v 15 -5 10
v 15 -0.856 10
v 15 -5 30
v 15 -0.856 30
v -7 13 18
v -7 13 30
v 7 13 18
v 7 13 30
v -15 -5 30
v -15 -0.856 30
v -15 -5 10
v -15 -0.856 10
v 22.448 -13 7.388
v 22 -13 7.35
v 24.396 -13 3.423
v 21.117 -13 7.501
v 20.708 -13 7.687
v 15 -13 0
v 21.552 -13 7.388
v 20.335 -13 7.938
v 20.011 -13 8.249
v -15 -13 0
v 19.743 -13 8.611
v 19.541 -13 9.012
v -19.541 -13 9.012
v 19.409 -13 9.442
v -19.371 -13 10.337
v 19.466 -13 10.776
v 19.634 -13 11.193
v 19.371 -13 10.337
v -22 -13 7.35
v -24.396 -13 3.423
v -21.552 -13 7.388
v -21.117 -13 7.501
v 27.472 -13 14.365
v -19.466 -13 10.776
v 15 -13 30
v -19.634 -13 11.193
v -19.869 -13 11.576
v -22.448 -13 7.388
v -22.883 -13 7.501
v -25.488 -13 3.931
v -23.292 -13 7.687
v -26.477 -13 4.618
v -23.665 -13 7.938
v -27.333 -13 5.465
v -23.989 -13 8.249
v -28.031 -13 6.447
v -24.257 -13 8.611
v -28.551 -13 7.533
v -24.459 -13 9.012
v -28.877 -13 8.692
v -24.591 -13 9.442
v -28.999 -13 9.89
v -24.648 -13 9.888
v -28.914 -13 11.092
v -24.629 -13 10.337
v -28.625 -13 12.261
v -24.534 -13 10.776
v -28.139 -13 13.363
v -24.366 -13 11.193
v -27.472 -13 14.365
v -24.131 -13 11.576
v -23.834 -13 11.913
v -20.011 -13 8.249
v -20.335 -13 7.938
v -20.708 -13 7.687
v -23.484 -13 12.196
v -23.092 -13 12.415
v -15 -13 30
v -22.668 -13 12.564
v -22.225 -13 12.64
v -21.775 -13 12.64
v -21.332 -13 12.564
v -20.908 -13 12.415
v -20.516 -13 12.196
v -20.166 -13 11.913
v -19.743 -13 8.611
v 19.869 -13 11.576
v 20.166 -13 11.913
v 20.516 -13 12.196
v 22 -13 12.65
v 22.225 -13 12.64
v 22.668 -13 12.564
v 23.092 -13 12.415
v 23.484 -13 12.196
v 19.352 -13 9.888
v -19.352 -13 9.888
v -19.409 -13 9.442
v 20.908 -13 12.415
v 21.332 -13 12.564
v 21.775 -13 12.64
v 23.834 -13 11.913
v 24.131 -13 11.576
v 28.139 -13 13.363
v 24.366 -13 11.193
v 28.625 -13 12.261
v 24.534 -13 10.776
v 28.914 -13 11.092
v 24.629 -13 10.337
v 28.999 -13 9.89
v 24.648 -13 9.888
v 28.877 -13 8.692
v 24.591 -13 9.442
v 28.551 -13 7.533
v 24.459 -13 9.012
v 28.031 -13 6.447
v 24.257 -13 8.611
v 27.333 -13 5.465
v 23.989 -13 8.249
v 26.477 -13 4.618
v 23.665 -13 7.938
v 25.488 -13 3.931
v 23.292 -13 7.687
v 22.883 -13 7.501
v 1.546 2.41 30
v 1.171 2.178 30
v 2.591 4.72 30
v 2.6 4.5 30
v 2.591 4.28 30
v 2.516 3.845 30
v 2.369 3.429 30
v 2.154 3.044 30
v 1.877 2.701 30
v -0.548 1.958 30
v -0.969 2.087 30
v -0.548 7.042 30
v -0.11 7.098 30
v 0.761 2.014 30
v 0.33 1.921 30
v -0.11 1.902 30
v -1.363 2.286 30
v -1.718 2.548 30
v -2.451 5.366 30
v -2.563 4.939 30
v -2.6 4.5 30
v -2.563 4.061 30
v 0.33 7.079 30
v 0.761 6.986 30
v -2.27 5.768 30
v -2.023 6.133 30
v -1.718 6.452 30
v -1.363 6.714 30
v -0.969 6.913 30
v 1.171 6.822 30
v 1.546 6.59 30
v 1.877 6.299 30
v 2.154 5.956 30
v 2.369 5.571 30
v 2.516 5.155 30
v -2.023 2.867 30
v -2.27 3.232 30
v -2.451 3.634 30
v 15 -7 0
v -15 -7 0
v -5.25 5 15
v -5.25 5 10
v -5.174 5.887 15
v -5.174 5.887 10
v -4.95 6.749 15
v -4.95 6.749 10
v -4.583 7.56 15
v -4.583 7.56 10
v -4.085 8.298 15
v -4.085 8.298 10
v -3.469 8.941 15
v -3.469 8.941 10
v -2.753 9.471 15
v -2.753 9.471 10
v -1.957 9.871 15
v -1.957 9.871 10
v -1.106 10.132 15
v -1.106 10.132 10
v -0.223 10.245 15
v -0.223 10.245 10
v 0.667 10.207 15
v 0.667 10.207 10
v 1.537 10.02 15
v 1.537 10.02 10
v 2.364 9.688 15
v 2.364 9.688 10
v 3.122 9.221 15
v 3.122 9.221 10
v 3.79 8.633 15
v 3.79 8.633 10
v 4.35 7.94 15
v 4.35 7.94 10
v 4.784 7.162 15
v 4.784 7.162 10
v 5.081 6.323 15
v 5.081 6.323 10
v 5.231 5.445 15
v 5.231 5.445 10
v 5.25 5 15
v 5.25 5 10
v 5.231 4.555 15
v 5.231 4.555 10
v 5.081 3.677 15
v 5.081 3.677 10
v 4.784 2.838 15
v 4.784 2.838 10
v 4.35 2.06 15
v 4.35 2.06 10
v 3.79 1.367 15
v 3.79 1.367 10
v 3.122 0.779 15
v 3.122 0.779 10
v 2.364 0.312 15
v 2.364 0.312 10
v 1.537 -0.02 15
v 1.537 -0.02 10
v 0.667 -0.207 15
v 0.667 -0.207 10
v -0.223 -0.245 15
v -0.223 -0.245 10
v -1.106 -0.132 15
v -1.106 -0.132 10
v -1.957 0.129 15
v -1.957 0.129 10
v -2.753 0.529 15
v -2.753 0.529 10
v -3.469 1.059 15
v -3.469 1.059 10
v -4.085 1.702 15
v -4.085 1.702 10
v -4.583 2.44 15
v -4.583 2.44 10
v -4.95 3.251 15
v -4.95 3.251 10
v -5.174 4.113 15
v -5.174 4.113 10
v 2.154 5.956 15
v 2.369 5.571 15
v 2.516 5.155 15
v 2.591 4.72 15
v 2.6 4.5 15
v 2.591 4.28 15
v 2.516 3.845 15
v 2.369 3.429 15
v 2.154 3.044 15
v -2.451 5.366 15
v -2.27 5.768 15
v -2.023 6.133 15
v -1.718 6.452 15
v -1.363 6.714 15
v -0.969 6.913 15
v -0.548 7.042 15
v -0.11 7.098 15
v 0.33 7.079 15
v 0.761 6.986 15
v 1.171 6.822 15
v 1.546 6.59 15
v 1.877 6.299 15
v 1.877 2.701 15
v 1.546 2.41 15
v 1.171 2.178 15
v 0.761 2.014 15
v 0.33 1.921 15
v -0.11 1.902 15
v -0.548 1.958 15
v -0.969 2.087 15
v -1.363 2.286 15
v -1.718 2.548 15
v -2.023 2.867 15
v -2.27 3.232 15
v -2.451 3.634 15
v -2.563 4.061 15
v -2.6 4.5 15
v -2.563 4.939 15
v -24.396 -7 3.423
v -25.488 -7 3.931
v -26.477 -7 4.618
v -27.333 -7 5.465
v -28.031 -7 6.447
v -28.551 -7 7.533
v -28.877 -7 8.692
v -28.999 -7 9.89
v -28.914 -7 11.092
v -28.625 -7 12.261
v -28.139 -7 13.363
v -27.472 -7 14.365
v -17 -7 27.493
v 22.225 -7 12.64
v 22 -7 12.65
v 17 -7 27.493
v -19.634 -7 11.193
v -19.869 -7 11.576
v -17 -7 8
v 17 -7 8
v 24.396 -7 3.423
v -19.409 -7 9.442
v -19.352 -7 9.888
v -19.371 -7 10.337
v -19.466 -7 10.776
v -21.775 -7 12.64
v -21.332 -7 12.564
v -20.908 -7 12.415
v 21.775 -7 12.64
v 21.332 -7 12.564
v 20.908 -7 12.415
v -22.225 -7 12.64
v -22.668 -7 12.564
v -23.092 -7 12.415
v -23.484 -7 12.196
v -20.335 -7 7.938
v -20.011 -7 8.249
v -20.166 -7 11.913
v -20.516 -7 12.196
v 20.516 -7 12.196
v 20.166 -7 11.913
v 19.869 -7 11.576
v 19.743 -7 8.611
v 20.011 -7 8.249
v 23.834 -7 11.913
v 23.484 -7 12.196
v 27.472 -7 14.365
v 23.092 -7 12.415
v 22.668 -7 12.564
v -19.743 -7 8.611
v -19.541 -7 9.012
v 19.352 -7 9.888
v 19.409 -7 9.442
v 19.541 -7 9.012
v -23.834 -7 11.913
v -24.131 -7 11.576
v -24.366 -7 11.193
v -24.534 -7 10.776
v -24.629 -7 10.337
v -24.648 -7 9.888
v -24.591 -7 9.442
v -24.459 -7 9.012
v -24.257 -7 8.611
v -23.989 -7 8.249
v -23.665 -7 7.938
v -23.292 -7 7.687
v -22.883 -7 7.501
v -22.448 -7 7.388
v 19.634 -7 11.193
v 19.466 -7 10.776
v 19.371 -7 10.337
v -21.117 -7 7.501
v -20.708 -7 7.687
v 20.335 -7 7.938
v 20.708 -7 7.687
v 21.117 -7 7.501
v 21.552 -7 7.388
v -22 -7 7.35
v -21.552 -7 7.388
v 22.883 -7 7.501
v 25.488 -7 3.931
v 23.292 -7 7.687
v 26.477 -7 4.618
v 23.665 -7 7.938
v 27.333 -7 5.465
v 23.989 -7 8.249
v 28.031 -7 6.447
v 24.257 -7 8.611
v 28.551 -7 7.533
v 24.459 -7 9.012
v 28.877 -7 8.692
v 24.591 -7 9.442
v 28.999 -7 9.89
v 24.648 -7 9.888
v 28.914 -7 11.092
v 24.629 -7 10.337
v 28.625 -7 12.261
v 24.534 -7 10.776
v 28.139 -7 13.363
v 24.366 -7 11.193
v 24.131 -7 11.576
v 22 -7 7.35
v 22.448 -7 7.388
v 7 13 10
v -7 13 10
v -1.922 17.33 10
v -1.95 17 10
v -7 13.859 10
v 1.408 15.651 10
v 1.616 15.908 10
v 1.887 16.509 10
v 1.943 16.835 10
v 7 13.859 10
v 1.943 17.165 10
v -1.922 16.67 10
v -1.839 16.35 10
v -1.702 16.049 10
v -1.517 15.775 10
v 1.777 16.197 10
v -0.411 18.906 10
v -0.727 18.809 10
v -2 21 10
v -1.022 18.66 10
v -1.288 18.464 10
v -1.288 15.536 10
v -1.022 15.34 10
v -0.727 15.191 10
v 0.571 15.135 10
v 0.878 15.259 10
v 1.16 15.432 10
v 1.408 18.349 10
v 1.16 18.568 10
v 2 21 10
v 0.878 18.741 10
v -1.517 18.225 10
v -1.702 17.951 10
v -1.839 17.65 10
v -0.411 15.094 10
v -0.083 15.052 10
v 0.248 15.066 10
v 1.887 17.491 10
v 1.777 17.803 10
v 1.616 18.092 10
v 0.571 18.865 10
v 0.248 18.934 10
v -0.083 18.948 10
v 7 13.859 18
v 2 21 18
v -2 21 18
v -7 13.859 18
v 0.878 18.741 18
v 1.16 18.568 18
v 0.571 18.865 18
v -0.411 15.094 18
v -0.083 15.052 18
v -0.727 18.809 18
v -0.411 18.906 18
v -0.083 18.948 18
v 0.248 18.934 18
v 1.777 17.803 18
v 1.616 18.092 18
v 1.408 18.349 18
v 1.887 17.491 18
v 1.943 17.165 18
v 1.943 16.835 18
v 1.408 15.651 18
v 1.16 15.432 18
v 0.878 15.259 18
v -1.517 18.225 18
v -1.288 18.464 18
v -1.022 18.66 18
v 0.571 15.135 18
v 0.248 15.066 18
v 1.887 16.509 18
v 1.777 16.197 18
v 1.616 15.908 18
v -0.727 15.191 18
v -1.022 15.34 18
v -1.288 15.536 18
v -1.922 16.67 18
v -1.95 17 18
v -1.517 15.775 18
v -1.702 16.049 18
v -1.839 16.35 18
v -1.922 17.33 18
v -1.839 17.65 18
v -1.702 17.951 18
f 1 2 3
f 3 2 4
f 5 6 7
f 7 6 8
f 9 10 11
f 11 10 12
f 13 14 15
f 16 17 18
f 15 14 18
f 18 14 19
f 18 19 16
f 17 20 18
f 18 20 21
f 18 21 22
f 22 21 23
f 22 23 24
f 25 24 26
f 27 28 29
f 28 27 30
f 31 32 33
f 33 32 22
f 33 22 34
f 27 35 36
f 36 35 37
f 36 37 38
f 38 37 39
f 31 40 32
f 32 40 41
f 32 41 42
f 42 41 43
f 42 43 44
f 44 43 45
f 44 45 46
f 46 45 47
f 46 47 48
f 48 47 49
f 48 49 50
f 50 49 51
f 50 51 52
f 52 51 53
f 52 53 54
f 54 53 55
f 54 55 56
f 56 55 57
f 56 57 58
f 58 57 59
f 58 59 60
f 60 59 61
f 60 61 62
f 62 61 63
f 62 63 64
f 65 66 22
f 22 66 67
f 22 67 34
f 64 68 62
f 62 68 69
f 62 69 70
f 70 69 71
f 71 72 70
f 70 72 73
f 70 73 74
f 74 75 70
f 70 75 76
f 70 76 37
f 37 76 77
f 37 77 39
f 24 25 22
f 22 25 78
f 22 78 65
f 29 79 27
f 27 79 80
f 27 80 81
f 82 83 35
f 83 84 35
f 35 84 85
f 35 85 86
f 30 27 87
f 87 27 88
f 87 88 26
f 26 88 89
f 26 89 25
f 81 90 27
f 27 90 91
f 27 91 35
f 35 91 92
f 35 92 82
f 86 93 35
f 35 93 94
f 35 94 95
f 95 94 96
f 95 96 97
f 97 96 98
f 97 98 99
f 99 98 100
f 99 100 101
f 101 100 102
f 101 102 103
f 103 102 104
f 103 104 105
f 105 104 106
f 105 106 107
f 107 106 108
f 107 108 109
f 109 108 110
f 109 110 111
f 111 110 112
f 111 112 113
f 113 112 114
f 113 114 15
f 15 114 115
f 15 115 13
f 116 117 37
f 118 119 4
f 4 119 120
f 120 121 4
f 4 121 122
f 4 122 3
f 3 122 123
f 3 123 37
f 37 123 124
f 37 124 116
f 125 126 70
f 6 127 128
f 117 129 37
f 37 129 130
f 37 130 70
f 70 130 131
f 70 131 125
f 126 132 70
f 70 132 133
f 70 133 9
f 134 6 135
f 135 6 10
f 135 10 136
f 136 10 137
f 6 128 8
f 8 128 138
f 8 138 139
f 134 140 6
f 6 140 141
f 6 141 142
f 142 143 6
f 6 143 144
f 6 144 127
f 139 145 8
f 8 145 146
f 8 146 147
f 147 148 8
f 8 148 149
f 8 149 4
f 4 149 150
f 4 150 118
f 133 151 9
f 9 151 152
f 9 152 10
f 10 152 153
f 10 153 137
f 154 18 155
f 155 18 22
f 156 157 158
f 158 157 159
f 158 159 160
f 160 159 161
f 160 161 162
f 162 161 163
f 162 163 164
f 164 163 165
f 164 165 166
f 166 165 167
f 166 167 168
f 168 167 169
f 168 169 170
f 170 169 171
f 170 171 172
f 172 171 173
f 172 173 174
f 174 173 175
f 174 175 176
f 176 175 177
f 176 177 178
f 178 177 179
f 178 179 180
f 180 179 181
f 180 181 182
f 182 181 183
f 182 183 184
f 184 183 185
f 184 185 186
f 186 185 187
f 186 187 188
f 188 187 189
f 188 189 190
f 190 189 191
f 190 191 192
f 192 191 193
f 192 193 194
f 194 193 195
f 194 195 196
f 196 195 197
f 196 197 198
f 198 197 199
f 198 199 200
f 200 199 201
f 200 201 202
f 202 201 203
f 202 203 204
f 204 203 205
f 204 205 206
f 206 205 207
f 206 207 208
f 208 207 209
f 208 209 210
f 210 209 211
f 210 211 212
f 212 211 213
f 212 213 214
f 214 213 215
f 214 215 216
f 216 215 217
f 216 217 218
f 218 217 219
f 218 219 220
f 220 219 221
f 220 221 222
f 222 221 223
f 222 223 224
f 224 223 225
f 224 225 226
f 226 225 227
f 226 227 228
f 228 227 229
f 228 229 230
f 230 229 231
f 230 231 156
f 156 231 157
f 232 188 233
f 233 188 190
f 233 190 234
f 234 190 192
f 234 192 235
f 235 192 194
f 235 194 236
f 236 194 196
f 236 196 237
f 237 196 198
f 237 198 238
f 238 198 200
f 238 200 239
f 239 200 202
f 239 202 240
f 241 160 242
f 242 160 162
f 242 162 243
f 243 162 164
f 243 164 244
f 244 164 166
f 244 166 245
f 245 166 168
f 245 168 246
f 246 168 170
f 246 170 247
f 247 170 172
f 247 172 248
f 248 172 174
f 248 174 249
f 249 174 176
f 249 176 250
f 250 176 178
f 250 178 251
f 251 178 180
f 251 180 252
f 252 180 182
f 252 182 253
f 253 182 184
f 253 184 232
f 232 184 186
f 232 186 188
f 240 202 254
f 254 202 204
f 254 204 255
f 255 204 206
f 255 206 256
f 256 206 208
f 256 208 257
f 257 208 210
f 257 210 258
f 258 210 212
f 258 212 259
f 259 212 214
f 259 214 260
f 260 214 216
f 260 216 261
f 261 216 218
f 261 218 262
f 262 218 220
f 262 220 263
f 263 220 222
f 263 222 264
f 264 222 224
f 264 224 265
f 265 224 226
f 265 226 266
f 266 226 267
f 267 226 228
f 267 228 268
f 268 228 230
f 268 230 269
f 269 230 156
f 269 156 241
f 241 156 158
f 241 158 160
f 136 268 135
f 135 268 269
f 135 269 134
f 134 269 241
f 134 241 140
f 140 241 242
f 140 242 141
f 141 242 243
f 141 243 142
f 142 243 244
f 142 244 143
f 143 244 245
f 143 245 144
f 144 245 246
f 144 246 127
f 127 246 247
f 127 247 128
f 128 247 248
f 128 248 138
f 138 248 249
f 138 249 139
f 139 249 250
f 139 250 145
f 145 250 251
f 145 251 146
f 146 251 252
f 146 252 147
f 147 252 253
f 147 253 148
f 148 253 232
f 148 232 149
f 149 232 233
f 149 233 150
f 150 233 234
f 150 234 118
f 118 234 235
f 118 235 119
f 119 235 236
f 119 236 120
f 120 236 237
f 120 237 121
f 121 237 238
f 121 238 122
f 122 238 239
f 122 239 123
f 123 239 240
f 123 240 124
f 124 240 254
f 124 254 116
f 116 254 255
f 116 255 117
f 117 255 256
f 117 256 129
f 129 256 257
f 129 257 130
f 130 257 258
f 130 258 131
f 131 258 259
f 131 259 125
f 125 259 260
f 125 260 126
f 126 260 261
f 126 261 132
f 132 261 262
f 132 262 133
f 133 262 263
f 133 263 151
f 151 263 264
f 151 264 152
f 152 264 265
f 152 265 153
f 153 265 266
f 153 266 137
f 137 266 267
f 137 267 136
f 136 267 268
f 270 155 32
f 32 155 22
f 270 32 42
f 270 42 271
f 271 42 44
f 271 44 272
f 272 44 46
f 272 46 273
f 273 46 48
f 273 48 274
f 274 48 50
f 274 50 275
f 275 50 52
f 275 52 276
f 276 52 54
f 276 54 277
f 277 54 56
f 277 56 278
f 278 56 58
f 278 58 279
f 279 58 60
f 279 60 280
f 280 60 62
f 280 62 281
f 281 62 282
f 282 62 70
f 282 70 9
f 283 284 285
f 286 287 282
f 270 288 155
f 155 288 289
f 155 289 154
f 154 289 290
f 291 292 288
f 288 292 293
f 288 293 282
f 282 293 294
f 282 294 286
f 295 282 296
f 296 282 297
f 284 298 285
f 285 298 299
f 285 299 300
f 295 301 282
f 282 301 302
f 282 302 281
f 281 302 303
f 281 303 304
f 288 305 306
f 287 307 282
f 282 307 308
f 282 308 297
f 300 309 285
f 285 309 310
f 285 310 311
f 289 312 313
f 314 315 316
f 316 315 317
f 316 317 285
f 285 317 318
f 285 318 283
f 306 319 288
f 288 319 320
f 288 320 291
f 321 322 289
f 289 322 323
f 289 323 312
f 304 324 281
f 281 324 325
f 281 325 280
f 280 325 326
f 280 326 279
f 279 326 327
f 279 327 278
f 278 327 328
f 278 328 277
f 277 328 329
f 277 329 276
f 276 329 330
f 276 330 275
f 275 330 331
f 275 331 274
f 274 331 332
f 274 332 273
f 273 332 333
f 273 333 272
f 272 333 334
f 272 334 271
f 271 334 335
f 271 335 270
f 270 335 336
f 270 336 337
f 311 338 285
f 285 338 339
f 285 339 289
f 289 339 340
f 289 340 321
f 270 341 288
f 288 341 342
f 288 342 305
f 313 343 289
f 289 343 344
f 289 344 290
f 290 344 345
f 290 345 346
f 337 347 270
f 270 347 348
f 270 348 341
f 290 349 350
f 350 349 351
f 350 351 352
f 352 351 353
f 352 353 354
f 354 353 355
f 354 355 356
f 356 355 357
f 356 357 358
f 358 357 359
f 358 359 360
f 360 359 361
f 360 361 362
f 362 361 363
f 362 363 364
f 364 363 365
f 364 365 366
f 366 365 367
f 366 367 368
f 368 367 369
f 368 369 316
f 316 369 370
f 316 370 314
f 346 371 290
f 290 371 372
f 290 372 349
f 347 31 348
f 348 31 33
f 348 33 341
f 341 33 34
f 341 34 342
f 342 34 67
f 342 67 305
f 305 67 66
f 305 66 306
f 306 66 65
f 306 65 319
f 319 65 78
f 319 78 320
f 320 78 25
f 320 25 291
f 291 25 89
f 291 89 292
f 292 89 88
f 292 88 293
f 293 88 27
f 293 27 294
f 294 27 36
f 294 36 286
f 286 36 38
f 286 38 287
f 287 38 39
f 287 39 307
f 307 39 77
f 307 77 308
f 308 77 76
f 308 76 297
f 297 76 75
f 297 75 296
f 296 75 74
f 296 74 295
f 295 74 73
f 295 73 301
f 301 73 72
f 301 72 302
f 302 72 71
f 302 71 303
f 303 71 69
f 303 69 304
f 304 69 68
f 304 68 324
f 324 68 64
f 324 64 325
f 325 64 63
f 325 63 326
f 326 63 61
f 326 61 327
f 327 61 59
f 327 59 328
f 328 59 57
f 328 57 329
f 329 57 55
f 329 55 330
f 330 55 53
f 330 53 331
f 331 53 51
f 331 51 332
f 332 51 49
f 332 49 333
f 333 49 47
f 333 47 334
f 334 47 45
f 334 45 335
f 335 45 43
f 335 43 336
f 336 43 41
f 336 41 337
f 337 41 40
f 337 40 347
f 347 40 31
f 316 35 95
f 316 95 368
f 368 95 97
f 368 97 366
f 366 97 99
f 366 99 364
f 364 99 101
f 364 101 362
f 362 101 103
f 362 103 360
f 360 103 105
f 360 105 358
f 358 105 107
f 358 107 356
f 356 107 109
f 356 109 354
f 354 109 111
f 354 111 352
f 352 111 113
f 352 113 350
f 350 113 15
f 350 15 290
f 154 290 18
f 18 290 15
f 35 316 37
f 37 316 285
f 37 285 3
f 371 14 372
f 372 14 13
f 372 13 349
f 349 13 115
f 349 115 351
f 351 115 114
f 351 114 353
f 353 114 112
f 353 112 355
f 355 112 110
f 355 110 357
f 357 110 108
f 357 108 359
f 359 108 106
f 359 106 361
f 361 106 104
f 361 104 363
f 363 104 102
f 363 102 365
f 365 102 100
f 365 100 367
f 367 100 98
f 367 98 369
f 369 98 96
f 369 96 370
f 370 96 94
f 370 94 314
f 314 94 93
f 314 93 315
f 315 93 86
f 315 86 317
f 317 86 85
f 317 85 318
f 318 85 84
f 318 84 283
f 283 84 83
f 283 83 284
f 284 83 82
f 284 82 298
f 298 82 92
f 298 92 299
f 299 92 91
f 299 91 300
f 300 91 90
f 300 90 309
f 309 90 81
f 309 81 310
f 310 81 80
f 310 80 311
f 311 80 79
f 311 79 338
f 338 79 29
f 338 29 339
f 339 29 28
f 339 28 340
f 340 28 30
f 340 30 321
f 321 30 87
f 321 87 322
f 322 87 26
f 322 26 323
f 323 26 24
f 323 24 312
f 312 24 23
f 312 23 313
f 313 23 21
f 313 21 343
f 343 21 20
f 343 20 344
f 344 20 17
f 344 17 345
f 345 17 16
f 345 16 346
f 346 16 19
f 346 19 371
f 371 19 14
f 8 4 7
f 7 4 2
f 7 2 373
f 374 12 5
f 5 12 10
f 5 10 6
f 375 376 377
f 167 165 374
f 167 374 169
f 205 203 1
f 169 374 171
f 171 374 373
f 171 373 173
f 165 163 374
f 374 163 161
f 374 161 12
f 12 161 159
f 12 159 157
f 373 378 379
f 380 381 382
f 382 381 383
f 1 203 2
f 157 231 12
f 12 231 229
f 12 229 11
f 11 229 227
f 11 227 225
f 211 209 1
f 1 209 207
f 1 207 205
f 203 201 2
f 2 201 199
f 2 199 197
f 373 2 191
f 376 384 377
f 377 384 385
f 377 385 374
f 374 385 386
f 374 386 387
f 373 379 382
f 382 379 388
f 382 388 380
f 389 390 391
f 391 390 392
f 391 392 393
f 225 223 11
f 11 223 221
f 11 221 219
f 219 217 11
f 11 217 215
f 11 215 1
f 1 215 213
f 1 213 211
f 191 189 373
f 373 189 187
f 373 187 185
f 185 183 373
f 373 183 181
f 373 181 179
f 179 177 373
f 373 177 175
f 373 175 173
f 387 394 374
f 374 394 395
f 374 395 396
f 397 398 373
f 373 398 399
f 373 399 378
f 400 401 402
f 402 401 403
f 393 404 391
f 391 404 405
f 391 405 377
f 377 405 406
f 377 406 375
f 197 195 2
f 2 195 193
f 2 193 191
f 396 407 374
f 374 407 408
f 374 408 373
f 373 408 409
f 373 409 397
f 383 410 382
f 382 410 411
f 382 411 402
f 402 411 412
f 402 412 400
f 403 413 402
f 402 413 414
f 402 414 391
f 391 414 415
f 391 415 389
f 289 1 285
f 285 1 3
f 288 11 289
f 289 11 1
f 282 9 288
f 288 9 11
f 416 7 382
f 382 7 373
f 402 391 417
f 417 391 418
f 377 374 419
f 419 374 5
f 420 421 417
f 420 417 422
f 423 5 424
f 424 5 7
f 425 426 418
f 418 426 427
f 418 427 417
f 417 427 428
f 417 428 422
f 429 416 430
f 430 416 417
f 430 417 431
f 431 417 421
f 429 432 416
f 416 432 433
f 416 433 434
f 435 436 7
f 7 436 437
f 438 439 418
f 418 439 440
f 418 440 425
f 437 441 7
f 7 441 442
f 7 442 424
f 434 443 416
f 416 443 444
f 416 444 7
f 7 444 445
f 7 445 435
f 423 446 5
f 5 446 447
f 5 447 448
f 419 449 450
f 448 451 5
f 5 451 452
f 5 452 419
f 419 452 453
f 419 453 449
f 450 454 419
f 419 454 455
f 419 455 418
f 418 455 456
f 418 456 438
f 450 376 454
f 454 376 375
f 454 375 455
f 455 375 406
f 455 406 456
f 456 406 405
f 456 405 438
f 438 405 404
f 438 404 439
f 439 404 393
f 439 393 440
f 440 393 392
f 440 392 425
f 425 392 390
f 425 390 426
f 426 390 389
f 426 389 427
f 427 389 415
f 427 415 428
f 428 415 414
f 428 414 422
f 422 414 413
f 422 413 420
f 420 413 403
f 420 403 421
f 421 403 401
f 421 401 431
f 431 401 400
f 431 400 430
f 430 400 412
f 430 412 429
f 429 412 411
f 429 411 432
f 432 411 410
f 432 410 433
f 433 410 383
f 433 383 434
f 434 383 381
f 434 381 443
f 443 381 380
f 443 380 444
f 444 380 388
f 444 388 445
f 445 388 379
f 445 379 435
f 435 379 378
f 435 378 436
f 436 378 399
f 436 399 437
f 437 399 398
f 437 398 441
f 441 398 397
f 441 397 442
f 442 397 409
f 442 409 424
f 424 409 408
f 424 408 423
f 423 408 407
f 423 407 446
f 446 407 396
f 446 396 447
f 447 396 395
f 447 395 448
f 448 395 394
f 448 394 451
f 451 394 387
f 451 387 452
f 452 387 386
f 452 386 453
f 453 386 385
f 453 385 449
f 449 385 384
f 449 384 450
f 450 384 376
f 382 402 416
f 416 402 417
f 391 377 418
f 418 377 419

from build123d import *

# Parameters (mm, degrees)
SKETCH1_W           = 30
SKETCH1_H           = 26
BOSS_EXTRUDE1_DEPTH = 30
SKETCH2_R           = 5.25
CUT_EXTRUDE1_DEPTH  = 15
CUT_EXTRUDE2_REACH  = 37.972
SKETCH3_R           = 2.6
SKETCH4_R           = 2.65
BOSS_EXTRUDE2_DEPTH = 6
CHAMFER1_SIZE       = 8
CHAMFER1_SIZE2      = 13.856406461
SKETCH5_W           = 10
SKETCH5_H           = 20
CUT_EXTRUDE3_DEPTH  = 20
CHAMFER2_SIZE       = 2
SKETCH6_W           = 14
SKETCH6_H           = 8
SKETCH6_R           = 1.95
BOSS_EXTRUDE3_DEPTH = 8
CHAMFER3_SIZE       = 5
CHAMFER3_SIZE2      = 7.140740034


with BuildPart() as part:
    # Sketch1 → Boss-Extrude1 (new body)
    with BuildSketch(Plane.XY):
        Rectangle(SKETCH1_W, SKETCH1_H)
    extrude(amount=BOSS_EXTRUDE1_DEPTH)

    # Sketch2 → Cut-Extrude1 (cut)
    with BuildSketch(Plane.XY):
        with Locations((0, 5)):
            Circle(SKETCH2_R)
    extrude(amount=CUT_EXTRUDE1_DEPTH, mode=Mode.SUBTRACT)

    # Sketch3 → Cut-Extrude2 (cut, up to next)
    with BuildSketch(Plane.XY, mode=Mode.PRIVATE) as cut_extrude2_sk1:
        with Locations((0, 4.5)):
            Circle(SKETCH3_R)
    cut_extrude2_tool1 = extrude(cut_extrude2_sk1.sketch, amount=CUT_EXTRUDE2_REACH, mode=Mode.PRIVATE) & part.part
    add(cut_extrude2_tool1.solids().sort_by_distance((0, 4.5, 0))[0], mode=Mode.SUBTRACT)

    # Sketch4 → Boss-Extrude2 (add)
    # profile 1 of 2: a face of its own
    with BuildSketch(Plane.XZ.offset(13)):
        with BuildLine():
            Line((-15, 30), (-27.472160356, 14.365256125))
            ThreePointArc((-27.472160356, 14.365256125), (-28.738776961, 8.10556471), (-24.395973154, 3.422818792))
            Line((-24.395973154, 3.422818792), (-15, 0))
            Line((-15, 0), (-15, 30))
        make_face()
        with Locations(Location((-22, 10, 0), (0, 0, 270))):
            Circle(SKETCH4_R, mode=Mode.SUBTRACT)
    # profile 2 of 2: a face of its own
    with BuildSketch(Plane.XZ.offset(13)):
        with BuildLine():
            Line((15, 0), (24.395973154, 3.422818792))
            ThreePointArc((24.395973154, 3.422818792), (28.738776961, 8.10556471), (27.472160356, 14.365256125))
            Line((27.472160356, 14.365256125), (15, 30))
            Line((15, 30), (15, 0))
        make_face()
        with Locations(Location((22, 10, 0), (0, 0, 90))):
            Circle(SKETCH4_R, mode=Mode.SUBTRACT)
    extrude(amount=-BOSS_EXTRUDE2_DEPTH)

    # Chamfer1
    chamfer1_edges = [part.edges().sort_by_distance(p)[0] for p in [
        (-15, 13, 15),
        (15, 13, 15),
    ]]
    chamfer1_side = [part.faces().sort_by_distance(p)[0] for p in [
        (0, 13, 15),
    ]]
    chamfer(chamfer1_edges, length=CHAMFER1_SIZE, length2=CHAMFER1_SIZE2, reference=chamfer1_side[0])

    # Sketch5 → Cut-Extrude3 (cut, symmetric)
    with BuildSketch(Plane(origin=(0, 0, 0), x_dir=(0, 0, -1), z_dir=(1, 0, 0))):
        with Locations((-5, 3)):
            Rectangle(SKETCH5_W, SKETCH5_H)
    extrude(amount=CUT_EXTRUDE3_DEPTH, both=True, mode=Mode.SUBTRACT)

    # Chamfer2
    chamfer2_edges = [part.edges().sort_by_distance(p)[0] for p in [
        (-15, -7, 20),
        (15, -7, 20),
        (0, -7, 10),
    ]]
    chamfer(chamfer2_edges, length=CHAMFER2_SIZE)

    # Sketch6 → Boss-Extrude3 (add)
    with BuildSketch(Plane(origin=(0, 0, 10), x_dir=(-1, 0, 0), z_dir=(0, 0, -1))):
        with Locations((0, 17)):
            Rectangle(SKETCH6_W, SKETCH6_H)
        with Locations((0, 17)):
            Circle(SKETCH6_R, mode=Mode.SUBTRACT)
    extrude(amount=-BOSS_EXTRUDE3_DEPTH)

    # Chamfer3
    chamfer3_edges = [part.edges().sort_by_distance(p)[0] for p in [
        (7, 21, 14),
        (-7, 21, 14),
    ]]
    chamfer3_side = [part.faces().sort_by_distance(p)[0] for p in [
        (0, 21, 14),
    ]]
    chamfer(chamfer3_edges, length=CHAMFER3_SIZE, length2=CHAMFER3_SIZE2, reference=chamfer3_side[0])


solid = part.part
